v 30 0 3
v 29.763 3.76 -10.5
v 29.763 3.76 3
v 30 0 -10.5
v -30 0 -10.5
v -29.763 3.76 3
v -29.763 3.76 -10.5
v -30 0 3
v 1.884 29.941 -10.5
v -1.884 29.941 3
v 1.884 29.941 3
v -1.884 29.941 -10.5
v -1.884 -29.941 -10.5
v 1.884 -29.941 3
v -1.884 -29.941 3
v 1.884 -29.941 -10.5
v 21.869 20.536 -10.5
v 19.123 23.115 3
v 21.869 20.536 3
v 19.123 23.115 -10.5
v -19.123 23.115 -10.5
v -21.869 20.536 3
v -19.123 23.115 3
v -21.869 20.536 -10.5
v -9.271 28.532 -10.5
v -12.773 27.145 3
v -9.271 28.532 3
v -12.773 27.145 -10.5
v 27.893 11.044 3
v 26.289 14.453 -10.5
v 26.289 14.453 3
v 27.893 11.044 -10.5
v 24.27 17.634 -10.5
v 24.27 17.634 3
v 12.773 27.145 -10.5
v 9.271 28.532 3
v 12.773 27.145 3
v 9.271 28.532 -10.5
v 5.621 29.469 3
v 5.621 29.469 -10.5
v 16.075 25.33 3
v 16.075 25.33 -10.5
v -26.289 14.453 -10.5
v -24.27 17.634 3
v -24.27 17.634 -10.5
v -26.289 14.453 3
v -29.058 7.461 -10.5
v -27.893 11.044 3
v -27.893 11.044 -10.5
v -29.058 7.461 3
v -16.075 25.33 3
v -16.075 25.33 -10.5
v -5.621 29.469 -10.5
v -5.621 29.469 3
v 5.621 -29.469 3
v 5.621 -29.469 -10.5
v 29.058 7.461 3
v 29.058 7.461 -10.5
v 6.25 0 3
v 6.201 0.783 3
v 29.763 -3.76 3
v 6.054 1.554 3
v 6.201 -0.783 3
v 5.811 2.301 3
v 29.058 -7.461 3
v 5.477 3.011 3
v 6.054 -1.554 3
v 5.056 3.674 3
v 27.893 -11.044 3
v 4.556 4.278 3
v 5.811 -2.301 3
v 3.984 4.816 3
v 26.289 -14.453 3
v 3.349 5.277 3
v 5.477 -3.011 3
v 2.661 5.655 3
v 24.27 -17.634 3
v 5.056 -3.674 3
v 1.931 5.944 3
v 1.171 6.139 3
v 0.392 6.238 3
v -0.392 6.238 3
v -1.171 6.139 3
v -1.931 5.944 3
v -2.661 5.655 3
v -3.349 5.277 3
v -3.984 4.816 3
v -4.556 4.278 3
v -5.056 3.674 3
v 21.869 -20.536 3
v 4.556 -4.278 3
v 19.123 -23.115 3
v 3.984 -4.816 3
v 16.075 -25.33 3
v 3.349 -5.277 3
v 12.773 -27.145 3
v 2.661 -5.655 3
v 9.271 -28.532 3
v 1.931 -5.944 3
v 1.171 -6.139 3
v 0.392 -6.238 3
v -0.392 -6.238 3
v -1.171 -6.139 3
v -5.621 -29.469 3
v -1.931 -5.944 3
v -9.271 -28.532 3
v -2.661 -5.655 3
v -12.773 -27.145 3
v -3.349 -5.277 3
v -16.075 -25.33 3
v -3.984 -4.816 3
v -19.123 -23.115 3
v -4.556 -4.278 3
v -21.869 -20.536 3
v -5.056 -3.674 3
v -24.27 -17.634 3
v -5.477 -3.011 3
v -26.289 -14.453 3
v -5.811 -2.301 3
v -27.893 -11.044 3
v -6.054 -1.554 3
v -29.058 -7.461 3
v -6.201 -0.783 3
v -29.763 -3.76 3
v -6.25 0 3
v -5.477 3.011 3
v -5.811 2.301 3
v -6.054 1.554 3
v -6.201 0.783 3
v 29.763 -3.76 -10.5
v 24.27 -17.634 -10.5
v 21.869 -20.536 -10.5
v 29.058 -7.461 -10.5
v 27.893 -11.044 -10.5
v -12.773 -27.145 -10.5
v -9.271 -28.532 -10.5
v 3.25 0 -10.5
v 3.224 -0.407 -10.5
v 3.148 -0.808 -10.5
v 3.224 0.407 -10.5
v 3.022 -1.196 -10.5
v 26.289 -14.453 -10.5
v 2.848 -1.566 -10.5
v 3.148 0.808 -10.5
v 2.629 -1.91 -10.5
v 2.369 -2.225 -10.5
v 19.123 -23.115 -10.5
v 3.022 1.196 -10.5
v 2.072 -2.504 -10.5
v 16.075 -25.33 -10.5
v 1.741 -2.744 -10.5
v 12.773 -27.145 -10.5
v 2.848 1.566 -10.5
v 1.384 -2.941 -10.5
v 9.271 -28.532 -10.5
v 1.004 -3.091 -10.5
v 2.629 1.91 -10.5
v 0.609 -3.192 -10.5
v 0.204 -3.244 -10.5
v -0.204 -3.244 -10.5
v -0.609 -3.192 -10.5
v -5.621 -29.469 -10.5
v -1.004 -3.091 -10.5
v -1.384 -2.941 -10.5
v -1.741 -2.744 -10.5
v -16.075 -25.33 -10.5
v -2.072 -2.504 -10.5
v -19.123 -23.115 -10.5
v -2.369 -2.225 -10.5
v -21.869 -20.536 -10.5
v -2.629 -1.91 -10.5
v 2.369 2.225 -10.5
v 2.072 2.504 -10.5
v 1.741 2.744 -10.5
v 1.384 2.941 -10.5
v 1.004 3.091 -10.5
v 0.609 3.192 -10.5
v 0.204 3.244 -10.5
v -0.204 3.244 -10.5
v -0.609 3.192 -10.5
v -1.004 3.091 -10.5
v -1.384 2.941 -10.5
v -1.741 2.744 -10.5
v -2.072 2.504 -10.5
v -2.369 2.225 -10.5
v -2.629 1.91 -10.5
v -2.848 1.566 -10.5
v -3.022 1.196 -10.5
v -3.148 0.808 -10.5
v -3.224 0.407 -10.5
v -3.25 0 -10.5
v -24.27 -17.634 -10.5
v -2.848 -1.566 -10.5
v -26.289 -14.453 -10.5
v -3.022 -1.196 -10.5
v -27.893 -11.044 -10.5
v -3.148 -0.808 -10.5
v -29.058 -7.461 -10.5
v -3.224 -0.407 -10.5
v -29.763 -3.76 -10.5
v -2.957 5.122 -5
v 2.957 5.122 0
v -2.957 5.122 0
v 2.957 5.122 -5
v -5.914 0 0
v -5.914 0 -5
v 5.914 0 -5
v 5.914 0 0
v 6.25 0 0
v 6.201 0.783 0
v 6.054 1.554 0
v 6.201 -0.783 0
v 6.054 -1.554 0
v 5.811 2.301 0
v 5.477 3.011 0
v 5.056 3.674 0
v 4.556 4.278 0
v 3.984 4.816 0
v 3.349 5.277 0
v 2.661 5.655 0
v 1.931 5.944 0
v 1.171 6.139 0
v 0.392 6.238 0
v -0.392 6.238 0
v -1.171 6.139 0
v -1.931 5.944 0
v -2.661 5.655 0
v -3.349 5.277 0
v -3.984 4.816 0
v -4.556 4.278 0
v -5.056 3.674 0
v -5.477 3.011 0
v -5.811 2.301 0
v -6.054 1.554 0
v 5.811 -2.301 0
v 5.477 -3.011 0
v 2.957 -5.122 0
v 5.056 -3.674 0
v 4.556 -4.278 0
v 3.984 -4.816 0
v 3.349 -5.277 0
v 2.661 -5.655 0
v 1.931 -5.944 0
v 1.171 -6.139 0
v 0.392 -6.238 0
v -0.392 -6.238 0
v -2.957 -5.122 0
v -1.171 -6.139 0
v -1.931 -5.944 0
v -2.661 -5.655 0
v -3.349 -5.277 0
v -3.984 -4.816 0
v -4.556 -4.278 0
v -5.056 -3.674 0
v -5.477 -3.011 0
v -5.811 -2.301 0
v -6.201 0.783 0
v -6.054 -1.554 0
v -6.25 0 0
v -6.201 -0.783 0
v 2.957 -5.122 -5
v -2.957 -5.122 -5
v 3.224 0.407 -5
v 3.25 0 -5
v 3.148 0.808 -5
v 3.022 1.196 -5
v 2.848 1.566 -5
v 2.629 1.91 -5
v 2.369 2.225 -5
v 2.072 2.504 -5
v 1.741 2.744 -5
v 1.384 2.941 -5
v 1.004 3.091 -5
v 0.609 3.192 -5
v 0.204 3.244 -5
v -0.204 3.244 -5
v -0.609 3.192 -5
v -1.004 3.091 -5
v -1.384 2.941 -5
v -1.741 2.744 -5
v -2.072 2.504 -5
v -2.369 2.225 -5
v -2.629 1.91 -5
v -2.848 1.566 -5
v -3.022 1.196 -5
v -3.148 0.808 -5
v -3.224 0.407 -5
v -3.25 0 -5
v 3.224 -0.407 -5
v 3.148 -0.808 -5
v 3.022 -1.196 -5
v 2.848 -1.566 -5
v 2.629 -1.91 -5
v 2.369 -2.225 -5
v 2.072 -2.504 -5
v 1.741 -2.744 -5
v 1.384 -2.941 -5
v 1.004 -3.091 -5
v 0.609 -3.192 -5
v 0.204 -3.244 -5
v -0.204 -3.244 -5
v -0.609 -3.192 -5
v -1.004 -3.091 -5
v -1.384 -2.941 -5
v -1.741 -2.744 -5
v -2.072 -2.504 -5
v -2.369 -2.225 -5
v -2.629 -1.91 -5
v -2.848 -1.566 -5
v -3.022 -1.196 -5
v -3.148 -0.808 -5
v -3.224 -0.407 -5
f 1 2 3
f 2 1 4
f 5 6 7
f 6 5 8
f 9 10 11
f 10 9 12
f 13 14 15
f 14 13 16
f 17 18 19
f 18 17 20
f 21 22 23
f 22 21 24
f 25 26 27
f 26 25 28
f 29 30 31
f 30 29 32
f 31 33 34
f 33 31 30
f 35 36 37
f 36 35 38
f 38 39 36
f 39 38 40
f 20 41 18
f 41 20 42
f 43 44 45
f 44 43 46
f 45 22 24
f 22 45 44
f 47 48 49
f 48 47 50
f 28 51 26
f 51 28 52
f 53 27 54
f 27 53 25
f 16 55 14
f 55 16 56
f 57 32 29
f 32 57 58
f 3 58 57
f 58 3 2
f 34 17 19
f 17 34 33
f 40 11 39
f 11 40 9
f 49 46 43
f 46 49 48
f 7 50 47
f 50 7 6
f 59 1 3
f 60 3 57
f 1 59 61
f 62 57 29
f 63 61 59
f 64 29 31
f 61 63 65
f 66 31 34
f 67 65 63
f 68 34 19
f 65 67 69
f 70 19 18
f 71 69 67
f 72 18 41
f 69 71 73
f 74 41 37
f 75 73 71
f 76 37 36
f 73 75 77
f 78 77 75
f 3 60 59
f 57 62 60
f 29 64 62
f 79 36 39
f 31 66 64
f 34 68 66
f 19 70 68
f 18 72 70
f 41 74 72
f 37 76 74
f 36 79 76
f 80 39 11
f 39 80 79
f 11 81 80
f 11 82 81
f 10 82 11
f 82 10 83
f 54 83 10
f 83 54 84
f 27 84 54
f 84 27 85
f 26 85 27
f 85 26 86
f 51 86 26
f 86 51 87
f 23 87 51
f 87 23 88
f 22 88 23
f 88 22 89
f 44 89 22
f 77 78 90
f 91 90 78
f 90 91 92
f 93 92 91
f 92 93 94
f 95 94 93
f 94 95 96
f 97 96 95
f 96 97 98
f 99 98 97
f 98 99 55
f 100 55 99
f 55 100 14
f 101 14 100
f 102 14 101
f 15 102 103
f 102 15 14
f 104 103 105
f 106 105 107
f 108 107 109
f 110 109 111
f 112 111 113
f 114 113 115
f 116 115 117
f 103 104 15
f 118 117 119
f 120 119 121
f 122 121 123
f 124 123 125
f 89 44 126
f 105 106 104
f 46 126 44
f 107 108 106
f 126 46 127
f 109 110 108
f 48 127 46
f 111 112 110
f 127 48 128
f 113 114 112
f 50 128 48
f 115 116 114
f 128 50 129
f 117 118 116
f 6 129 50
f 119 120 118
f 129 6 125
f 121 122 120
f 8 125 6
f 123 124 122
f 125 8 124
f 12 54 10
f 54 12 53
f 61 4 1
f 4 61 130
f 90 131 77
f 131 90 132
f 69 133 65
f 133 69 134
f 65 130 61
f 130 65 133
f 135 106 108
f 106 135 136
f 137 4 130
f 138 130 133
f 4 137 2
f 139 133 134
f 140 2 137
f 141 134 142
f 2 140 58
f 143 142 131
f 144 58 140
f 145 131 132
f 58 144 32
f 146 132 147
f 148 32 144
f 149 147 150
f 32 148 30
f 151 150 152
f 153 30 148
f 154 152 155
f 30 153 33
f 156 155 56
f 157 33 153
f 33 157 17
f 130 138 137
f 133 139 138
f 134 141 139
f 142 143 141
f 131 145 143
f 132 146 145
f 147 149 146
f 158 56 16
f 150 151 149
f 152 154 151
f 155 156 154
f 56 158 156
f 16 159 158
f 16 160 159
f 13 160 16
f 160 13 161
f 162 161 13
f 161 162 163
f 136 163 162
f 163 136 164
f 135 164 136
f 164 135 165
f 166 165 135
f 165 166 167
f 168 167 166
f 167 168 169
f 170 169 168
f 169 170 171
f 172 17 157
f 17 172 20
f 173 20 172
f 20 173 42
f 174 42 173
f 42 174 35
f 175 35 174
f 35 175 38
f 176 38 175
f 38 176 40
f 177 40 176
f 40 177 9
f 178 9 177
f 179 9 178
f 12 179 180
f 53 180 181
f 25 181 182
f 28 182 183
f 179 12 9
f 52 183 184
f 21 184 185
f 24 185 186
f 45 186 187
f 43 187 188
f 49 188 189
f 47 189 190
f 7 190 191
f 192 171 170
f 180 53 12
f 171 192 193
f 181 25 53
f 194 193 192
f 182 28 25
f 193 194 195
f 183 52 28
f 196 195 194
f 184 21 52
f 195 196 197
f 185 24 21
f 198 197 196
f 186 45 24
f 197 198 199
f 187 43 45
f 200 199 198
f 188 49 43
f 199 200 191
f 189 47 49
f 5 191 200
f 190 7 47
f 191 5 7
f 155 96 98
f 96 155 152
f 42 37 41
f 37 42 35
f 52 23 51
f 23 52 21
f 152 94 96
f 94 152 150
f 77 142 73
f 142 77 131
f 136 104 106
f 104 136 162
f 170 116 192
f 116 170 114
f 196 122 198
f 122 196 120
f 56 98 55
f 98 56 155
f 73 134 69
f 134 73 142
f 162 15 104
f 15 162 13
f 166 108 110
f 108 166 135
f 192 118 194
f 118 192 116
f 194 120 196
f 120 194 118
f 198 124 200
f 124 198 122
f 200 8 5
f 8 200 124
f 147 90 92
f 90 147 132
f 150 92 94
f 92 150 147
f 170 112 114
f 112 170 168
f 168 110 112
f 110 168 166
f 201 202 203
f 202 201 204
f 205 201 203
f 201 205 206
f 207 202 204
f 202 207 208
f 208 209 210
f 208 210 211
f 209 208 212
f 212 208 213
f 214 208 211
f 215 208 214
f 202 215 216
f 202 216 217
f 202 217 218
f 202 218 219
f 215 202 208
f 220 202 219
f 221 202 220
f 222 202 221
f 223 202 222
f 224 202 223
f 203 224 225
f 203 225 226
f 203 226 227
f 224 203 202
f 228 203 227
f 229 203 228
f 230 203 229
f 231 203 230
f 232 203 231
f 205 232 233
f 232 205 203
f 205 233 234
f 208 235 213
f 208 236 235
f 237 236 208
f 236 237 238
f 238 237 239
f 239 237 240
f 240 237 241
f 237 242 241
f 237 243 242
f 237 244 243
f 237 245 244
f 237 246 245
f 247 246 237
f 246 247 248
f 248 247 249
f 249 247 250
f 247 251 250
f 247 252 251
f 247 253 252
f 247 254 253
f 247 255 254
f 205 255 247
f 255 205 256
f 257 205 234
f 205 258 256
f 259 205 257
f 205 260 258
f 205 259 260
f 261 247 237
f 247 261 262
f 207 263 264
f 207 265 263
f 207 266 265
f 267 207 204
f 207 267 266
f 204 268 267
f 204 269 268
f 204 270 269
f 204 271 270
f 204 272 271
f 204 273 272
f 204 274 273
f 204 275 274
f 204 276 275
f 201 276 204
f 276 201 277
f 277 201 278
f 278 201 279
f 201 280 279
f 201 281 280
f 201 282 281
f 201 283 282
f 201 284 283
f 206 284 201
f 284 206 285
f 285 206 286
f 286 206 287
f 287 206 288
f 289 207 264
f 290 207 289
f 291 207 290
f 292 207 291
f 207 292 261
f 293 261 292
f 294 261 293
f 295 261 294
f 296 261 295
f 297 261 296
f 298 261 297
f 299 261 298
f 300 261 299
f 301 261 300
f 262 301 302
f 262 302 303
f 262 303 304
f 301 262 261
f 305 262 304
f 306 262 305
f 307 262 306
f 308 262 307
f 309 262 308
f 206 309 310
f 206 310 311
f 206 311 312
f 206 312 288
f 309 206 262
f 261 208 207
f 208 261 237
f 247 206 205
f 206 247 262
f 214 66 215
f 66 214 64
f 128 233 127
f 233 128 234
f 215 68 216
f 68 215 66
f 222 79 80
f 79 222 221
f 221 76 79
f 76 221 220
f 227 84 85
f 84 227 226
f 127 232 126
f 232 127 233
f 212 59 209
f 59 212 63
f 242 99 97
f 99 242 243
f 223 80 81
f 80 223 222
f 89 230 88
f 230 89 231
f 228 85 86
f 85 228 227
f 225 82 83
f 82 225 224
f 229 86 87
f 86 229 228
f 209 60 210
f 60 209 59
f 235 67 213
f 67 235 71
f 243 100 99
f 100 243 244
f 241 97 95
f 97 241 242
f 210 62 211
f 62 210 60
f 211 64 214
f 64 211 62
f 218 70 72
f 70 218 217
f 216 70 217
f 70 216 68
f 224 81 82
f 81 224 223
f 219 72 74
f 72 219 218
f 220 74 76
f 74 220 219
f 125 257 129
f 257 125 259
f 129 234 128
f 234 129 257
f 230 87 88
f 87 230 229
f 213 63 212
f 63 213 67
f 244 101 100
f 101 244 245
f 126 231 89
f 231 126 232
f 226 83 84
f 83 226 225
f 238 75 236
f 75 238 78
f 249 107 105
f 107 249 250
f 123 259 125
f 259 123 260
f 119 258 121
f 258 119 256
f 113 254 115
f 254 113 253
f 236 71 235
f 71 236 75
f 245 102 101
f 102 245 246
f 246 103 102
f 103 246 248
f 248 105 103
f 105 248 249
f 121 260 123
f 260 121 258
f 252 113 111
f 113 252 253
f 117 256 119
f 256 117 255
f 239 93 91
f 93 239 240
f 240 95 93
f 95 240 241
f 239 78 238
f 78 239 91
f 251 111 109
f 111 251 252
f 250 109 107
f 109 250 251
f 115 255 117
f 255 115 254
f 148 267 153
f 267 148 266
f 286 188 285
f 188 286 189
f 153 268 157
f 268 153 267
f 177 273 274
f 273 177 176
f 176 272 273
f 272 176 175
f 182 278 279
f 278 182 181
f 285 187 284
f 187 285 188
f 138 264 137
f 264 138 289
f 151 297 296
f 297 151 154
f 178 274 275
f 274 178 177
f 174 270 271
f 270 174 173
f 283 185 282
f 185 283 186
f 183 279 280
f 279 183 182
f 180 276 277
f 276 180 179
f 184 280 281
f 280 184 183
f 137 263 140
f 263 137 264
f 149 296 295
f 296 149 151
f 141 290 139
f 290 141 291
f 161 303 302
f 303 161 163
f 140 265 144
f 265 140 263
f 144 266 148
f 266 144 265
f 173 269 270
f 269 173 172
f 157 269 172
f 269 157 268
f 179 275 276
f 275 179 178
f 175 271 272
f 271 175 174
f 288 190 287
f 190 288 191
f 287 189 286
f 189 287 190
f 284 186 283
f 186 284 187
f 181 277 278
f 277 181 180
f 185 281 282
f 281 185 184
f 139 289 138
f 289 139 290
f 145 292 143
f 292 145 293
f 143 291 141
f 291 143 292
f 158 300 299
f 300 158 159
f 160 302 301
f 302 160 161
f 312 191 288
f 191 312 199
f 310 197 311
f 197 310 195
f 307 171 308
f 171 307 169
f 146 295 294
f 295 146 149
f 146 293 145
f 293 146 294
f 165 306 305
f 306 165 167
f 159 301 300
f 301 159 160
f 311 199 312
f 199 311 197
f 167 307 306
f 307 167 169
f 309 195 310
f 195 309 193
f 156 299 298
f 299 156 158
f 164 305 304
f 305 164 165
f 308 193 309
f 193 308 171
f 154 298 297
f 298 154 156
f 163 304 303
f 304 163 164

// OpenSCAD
$fn = 50;

difference() {
	union() {
		translate(v = [0, 0, -10.5]) {
			cylinder(h = 13.5, r = 30.0);
		}
		#translate(v = [0, 0, -12.0]) {
			cylinder(h = 12, r = 2.875);
		}
	}
	union() {
		translate(v = [0, 0, 0]) {
			rotate(a = [0, 0, 0]) {
				difference() {
					union() {
						translate(v = [0, 0, -5]) {
							linear_extrude(height = 5) {
								polygon(points = [[5.914249999999999, 0.0], [2.957125, 5.1218907443321156], [-2.9571249999999982, 5.1218907443321156], [-5.914249999999999, 7.242867331857232e-16], [-2.9571250000000022, -5.121890744332115], [2.9571249999999956, -5.121890744332118]]);
							}
						}
					}
					union();
				}
			}
		}
		#cylinder(h = 3, r = 6.25);
		#translate(v = [0, 0, -100.0]) {
			cylinder(h = 200, r = 3.25);
		}
	}
}
